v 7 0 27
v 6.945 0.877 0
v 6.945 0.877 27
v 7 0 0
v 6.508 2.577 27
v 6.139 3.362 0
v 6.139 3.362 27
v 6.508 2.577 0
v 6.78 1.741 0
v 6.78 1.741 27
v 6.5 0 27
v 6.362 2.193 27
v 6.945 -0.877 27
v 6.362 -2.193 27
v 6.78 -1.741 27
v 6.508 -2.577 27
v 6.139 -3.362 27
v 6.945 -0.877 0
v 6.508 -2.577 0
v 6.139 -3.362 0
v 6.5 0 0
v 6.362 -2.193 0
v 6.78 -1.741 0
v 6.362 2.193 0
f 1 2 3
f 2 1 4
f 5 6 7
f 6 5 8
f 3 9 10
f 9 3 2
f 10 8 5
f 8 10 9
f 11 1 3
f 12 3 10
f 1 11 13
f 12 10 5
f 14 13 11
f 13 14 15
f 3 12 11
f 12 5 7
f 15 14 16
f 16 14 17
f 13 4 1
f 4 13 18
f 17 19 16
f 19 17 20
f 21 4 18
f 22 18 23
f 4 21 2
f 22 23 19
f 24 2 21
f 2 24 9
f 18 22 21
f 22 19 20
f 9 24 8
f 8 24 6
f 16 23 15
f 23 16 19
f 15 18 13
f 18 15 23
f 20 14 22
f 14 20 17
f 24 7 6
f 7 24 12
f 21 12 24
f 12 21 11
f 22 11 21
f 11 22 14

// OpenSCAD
$fn = 50;


difference() {
	union() {
		cylinder(h = 27, r = 7.0000000000);
		translate(v = [-14.0000000000, 0, 0]) {
			cylinder(h = 27, r = 7.0000000000);
		}
	}
	union() {
		cylinder(h = 27, r = 3.2500000000);
		cylinder(h = 27, r = 1.8000000000);
		cylinder(h = 27, r = 1.8000000000);
		cylinder(h = 27, r = 1.8000000000);
		translate(v = [-18.5000000000, 0, 0]) {
			hull() {
				translate(v = [-3.7500000000, 0.0000000000, 0]) {
					cylinder(h = 27, r = 7.5000000000);
				}
				translate(v = [3.7500000000, 0.0000000000, 0]) {
					cylinder(h = 27, r = 7.5000000000);
				}
				translate(v = [-3.7500000000, -0.0000000000, 0]) {
					cylinder(h = 27, r = 7.5000000000);
				}
				translate(v = [3.7500000000, -0.0000000000, 0]) {
					cylinder(h = 27, r = 7.5000000000);
				}
			}
		}
		translate(v = [-11.0000000000, 0, 0.0000000000]) {
			cylinder(h = 27, r = 17.5000000000);
		}
	}
}
